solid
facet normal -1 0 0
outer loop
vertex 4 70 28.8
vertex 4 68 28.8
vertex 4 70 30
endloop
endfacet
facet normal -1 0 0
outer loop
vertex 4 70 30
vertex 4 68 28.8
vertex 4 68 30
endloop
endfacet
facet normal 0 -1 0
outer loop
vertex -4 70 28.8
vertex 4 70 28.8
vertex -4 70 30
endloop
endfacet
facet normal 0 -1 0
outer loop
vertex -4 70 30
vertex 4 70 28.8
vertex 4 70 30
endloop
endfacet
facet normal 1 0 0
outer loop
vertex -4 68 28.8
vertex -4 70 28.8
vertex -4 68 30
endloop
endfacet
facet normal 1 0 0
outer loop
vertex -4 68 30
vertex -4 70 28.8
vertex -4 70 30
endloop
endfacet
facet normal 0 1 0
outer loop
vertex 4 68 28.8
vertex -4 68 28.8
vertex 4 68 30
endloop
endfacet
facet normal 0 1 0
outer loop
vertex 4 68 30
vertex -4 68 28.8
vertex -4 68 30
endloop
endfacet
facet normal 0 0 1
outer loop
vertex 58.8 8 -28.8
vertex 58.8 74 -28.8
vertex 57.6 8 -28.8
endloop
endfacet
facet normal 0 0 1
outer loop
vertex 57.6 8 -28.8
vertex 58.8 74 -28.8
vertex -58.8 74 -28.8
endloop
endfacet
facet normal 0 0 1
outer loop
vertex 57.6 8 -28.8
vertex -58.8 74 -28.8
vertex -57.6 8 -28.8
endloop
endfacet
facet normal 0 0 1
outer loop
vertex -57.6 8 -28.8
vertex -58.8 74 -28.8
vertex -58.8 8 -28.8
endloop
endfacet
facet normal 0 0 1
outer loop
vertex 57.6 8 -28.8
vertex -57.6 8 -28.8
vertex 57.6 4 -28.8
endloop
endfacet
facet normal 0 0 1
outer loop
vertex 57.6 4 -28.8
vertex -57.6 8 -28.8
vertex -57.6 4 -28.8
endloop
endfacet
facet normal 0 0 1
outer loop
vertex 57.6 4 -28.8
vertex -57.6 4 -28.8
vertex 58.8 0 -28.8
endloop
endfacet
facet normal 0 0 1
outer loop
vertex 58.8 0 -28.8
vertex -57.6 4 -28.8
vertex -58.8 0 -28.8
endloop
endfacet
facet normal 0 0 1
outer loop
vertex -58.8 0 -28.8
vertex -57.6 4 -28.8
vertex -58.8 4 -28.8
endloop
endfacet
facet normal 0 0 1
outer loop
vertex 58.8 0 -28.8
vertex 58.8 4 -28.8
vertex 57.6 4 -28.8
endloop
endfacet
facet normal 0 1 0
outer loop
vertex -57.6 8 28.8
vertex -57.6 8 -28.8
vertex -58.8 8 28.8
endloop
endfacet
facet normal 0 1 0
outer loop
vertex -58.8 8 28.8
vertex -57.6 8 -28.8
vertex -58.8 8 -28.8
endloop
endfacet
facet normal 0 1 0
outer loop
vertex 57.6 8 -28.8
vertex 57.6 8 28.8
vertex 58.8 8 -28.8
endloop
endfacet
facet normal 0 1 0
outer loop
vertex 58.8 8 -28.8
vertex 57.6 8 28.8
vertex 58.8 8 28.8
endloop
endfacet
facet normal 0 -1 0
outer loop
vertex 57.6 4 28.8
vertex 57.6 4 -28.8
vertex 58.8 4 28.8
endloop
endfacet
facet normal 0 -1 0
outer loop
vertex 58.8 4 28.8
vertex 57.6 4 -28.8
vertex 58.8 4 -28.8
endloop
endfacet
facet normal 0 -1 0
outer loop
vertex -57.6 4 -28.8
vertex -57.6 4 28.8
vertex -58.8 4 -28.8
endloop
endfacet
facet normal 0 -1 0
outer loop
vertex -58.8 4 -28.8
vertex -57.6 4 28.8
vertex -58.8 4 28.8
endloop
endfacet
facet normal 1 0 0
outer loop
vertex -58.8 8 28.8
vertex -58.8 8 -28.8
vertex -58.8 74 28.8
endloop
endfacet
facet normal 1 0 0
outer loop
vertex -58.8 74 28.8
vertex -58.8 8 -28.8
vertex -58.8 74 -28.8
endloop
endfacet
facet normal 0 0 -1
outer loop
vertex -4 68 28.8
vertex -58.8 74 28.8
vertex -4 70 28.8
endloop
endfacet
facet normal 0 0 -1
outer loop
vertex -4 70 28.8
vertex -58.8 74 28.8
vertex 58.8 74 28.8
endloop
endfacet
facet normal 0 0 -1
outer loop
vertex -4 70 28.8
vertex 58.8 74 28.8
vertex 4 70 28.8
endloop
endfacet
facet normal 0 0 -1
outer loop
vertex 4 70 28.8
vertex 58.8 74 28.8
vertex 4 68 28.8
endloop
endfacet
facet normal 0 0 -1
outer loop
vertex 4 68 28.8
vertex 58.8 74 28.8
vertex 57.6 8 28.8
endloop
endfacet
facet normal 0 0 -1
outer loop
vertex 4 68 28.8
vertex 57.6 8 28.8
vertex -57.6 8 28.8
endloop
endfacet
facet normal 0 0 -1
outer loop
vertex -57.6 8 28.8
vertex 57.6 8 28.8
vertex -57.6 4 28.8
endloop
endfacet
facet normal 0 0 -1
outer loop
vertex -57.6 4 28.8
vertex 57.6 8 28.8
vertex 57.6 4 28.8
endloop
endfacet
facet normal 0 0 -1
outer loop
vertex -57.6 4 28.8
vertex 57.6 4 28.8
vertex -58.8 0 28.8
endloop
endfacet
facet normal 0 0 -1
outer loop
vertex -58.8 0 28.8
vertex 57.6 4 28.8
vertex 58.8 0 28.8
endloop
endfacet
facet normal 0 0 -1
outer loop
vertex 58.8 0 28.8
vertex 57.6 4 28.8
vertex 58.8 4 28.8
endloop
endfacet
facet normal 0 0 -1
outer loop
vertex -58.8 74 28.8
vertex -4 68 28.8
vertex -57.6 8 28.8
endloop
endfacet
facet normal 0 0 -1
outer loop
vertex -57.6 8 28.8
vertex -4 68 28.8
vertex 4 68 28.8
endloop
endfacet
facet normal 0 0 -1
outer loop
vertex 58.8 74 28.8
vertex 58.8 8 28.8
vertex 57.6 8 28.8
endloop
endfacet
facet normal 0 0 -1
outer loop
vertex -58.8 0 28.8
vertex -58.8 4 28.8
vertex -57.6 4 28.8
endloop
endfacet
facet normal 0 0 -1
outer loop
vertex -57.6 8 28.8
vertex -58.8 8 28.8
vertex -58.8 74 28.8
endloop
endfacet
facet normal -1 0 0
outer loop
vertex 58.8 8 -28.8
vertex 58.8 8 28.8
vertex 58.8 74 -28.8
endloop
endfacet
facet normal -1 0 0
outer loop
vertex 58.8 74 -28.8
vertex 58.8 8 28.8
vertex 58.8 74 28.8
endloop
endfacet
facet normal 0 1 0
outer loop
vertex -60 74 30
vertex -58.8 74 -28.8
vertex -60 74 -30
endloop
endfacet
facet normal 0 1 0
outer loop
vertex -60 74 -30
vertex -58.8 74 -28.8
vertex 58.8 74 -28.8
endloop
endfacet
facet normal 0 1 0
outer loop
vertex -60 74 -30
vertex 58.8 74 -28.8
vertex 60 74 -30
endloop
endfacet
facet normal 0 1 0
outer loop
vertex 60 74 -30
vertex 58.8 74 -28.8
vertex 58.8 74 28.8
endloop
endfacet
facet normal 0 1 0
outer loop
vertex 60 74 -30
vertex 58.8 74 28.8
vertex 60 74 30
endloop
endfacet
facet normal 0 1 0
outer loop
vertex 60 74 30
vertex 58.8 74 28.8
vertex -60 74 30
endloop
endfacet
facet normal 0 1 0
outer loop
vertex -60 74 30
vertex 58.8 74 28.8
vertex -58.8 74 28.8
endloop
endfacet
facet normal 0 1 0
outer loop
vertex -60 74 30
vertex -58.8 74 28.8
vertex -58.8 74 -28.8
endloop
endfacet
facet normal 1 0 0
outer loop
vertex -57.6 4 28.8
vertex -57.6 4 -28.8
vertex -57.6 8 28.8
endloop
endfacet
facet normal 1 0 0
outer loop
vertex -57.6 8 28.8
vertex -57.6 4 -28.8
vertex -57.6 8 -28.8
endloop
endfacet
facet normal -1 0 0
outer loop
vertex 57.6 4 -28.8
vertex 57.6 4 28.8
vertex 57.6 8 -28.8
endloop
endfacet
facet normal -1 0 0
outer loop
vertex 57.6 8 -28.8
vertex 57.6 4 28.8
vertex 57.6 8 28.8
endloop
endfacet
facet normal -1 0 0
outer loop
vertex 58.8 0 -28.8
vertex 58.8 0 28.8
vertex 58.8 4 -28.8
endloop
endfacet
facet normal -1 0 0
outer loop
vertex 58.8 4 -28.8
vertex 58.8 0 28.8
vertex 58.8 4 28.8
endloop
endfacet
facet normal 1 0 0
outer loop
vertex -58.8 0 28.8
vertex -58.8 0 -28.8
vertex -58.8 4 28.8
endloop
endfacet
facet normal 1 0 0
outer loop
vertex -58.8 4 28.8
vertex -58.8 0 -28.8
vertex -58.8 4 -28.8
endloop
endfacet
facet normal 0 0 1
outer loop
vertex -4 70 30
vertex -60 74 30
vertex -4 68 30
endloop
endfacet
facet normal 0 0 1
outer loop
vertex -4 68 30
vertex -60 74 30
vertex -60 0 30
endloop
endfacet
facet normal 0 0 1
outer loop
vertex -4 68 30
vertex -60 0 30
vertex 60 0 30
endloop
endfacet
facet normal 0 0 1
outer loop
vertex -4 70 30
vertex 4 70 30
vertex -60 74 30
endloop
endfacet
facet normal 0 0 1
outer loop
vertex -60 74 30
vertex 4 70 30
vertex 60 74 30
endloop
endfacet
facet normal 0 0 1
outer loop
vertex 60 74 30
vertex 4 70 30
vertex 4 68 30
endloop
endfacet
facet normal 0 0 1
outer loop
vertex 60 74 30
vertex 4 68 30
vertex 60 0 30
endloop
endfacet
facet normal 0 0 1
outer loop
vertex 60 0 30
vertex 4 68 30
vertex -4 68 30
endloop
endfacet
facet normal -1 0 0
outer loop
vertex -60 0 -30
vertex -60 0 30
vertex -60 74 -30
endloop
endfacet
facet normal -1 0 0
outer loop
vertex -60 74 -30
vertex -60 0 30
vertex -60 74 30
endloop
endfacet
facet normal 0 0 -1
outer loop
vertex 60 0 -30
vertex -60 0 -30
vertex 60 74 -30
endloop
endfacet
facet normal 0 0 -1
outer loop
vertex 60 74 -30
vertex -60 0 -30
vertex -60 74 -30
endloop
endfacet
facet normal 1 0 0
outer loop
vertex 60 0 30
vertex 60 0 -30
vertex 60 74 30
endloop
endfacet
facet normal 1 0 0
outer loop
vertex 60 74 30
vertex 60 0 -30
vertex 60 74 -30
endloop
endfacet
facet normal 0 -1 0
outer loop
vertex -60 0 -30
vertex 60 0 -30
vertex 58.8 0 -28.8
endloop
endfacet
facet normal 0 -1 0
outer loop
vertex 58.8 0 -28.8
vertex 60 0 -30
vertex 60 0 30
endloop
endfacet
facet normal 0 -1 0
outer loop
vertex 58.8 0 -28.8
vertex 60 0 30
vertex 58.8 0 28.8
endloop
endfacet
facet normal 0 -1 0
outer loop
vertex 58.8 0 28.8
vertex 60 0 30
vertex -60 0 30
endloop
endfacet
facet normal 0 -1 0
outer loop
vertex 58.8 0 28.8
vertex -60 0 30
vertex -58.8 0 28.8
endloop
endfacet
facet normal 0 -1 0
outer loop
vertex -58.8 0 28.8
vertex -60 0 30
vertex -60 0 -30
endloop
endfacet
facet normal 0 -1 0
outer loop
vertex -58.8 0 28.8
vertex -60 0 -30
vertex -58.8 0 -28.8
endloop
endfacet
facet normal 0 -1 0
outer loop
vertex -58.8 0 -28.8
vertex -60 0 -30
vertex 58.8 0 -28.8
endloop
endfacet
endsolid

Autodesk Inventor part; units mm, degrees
ref_plane "YZ Plane" through (0, 0, 0) normal (1, 0, 0) x (0, 1, 0)
ref_plane "XZ Plane" through (0, 0, 0) normal (0, 1, 0) x (-1, 0, 0)
ref_plane "XY Plane" through (0, 0, 0) normal (0, 0, 1) x (1, 0, 0)
sketch "Szkic1" plane through (0, 0, 0) normal (0, 1, 0) x (-1, 0, 0)
  point P0 (0, 0)
sketch "Szkic2" plane through (0, 0, 0) normal (0, 1, 0) x (-1, 0, 0)
  line L0 (58.8, -28.8) -> (-58.8, -28.8)
  line L1 (-58.8, -28.8) -> (-58.8, 28.8)
  line L2 (-58.8, 28.8) -> (58.8, 28.8)
  line L3 (58.8, 28.8) -> (58.8, -28.8)
  line L4 (58.8, -28.8) -> (-58.8, 28.8) construction
  line L5 (-58.8, -28.8) -> (58.8, 28.8) construction
  line L6 (60, -30) -> (-60, -30)
  line L7 (-60, -30) -> (-60, 30)
  line L8 (-60, 30) -> (60, 30)
  line L9 (60, 30) -> (60, -30)
  line L10 (60, -30) -> (-60, 30) construction
  line L11 (-60, -30) -> (60, 30) construction
  line L12 (58.8, 28.8) -> (58.8, 30)
  point P0 (0, 0)
  dimension "d0" = 117.6
  dimension "d1" = 57.6
  dimension "d2" = 120
  dimension "d3" = 60
extrude "Wyciągnięcie proste1" add sketch "Szkic2" along normal blind 4
sketch "Szkic4" plane through (0, 4, 0) normal (0, 1, 0) x (1, 0, 0)
  line L0 (-60, 30) -> (60, 30)
  line L1 (60, 30) -> (60, -30)
  line L2 (60, -30) -> (-60, -30)
  line L3 (-60, -30) -> (-60, 30)
  line L4 (-60, 30) -> (60, -30) construction
  line L5 (60, 30) -> (-60, -30) construction
  line L6 (-57.6, 27.6) -> (57.6, 27.6)
  line L7 (57.6, 27.6) -> (57.6, -27.6)
  line L8 (57.6, -27.6) -> (-57.6, -27.6)
  line L9 (-57.6, -27.6) -> (-57.6, 27.6)
  line L10 (-57.6, 27.6) -> (57.6, -27.6) construction
  line L11 (57.6, 27.6) -> (-57.6, -27.6) construction
  line L12 (-57.6, 27.6) -> (-57.6, 30)
  point P0 (0, 0)
  dimension "d10" = 120
  dimension "d11" = 60
  dimension "d12" = 115.2
  dimension "d13" = 55.2
extrude "Wyciągnięcie proste2" add sketch "Szkic4" along normal blind 4
sketch "Szkic5" plane through (0, 8, 0) normal (0, 1, 0) x (1, 0, 0)
  line L0 (-58.8, 28.8) -> (58.8, 28.8)
  line L1 (58.8, 28.8) -> (58.8, -28.8)
  line L2 (58.8, -28.8) -> (-58.8, -28.8)
  line L3 (-58.8, -28.8) -> (-58.8, 28.8)
  line L4 (-58.8, 28.8) -> (58.8, -28.8) construction
  line L5 (58.8, 28.8) -> (-58.8, -28.8) construction
  line L6 (-60, 30) -> (60, 30)
  line L7 (60, 30) -> (60, -30)
  line L8 (60, -30) -> (-60, -30)
  line L9 (-60, -30) -> (-60, 30)
  line L10 (-60, 30) -> (60, -30) construction
  line L11 (60, 30) -> (-60, -30) construction
  line L12 (-58.8, 28.8) -> (58.8, 28.8) projected
  line L13 (-58.8, 28.8) -> (-58.8, 30)
  line L14 (60, 30) -> (-60, 30) projected
  point P0 (0, 0)
  dimension "d16" = 117.6
  dimension "d17" = 57.6
  dimension "d18" = 120
  dimension "d19" = 60
extrude "Wyciągnięcie proste3" add sketch "Szkic5" along normal blind 66
sketch "Szkic8" plane through (0, 4, 0) normal (0, -1, 0) x (1, 0, 0)
  line L0 (57.6, -28.8) -> (-57.6, -28.8)
  line L1 (-57.6, -28.8) -> (-57.6, 28.8)
  line L2 (-57.6, 28.8) -> (57.6, 28.8)
  line L3 (57.6, 28.8) -> (57.6, -28.8)
  line L4 (57.6, -28.8) -> (-57.6, 28.8) construction
  line L5 (-57.6, -28.8) -> (57.6, 28.8) construction
  point P0 (0, 0)
  dimension "d30" = 115.2
  dimension "d31" = 57.6
extrude "Wyciągnięcie proste5" cut sketch "Szkic8" against normal through all
sketch "Szkic9" plane through (-60, 0, 30) normal (0, 0, 1) x (1, 0, 0)
  line L0 (60, 0) -> (60, 69)
  line L1 (60, 0) -> (129, 0) construction
  line L2 (64, 68) -> (56, 68)
  line L3 (56, 68) -> (56, 70)
  line L4 (56, 70) -> (64, 70)
  line L5 (64, 70) -> (64, 68)
  line L6 (64, 68) -> (56, 70) construction
  line L7 (56, 68) -> (64, 70) construction
  dimension "d34" = 69
  dimension "d35" = 90
  dimension "d36" = 8
  dimension "d37" = 2
extrude "Wyciągnięcie proste6" cut sketch "Szkic9" against normal blind 10
properties part number "sciany boczne"
